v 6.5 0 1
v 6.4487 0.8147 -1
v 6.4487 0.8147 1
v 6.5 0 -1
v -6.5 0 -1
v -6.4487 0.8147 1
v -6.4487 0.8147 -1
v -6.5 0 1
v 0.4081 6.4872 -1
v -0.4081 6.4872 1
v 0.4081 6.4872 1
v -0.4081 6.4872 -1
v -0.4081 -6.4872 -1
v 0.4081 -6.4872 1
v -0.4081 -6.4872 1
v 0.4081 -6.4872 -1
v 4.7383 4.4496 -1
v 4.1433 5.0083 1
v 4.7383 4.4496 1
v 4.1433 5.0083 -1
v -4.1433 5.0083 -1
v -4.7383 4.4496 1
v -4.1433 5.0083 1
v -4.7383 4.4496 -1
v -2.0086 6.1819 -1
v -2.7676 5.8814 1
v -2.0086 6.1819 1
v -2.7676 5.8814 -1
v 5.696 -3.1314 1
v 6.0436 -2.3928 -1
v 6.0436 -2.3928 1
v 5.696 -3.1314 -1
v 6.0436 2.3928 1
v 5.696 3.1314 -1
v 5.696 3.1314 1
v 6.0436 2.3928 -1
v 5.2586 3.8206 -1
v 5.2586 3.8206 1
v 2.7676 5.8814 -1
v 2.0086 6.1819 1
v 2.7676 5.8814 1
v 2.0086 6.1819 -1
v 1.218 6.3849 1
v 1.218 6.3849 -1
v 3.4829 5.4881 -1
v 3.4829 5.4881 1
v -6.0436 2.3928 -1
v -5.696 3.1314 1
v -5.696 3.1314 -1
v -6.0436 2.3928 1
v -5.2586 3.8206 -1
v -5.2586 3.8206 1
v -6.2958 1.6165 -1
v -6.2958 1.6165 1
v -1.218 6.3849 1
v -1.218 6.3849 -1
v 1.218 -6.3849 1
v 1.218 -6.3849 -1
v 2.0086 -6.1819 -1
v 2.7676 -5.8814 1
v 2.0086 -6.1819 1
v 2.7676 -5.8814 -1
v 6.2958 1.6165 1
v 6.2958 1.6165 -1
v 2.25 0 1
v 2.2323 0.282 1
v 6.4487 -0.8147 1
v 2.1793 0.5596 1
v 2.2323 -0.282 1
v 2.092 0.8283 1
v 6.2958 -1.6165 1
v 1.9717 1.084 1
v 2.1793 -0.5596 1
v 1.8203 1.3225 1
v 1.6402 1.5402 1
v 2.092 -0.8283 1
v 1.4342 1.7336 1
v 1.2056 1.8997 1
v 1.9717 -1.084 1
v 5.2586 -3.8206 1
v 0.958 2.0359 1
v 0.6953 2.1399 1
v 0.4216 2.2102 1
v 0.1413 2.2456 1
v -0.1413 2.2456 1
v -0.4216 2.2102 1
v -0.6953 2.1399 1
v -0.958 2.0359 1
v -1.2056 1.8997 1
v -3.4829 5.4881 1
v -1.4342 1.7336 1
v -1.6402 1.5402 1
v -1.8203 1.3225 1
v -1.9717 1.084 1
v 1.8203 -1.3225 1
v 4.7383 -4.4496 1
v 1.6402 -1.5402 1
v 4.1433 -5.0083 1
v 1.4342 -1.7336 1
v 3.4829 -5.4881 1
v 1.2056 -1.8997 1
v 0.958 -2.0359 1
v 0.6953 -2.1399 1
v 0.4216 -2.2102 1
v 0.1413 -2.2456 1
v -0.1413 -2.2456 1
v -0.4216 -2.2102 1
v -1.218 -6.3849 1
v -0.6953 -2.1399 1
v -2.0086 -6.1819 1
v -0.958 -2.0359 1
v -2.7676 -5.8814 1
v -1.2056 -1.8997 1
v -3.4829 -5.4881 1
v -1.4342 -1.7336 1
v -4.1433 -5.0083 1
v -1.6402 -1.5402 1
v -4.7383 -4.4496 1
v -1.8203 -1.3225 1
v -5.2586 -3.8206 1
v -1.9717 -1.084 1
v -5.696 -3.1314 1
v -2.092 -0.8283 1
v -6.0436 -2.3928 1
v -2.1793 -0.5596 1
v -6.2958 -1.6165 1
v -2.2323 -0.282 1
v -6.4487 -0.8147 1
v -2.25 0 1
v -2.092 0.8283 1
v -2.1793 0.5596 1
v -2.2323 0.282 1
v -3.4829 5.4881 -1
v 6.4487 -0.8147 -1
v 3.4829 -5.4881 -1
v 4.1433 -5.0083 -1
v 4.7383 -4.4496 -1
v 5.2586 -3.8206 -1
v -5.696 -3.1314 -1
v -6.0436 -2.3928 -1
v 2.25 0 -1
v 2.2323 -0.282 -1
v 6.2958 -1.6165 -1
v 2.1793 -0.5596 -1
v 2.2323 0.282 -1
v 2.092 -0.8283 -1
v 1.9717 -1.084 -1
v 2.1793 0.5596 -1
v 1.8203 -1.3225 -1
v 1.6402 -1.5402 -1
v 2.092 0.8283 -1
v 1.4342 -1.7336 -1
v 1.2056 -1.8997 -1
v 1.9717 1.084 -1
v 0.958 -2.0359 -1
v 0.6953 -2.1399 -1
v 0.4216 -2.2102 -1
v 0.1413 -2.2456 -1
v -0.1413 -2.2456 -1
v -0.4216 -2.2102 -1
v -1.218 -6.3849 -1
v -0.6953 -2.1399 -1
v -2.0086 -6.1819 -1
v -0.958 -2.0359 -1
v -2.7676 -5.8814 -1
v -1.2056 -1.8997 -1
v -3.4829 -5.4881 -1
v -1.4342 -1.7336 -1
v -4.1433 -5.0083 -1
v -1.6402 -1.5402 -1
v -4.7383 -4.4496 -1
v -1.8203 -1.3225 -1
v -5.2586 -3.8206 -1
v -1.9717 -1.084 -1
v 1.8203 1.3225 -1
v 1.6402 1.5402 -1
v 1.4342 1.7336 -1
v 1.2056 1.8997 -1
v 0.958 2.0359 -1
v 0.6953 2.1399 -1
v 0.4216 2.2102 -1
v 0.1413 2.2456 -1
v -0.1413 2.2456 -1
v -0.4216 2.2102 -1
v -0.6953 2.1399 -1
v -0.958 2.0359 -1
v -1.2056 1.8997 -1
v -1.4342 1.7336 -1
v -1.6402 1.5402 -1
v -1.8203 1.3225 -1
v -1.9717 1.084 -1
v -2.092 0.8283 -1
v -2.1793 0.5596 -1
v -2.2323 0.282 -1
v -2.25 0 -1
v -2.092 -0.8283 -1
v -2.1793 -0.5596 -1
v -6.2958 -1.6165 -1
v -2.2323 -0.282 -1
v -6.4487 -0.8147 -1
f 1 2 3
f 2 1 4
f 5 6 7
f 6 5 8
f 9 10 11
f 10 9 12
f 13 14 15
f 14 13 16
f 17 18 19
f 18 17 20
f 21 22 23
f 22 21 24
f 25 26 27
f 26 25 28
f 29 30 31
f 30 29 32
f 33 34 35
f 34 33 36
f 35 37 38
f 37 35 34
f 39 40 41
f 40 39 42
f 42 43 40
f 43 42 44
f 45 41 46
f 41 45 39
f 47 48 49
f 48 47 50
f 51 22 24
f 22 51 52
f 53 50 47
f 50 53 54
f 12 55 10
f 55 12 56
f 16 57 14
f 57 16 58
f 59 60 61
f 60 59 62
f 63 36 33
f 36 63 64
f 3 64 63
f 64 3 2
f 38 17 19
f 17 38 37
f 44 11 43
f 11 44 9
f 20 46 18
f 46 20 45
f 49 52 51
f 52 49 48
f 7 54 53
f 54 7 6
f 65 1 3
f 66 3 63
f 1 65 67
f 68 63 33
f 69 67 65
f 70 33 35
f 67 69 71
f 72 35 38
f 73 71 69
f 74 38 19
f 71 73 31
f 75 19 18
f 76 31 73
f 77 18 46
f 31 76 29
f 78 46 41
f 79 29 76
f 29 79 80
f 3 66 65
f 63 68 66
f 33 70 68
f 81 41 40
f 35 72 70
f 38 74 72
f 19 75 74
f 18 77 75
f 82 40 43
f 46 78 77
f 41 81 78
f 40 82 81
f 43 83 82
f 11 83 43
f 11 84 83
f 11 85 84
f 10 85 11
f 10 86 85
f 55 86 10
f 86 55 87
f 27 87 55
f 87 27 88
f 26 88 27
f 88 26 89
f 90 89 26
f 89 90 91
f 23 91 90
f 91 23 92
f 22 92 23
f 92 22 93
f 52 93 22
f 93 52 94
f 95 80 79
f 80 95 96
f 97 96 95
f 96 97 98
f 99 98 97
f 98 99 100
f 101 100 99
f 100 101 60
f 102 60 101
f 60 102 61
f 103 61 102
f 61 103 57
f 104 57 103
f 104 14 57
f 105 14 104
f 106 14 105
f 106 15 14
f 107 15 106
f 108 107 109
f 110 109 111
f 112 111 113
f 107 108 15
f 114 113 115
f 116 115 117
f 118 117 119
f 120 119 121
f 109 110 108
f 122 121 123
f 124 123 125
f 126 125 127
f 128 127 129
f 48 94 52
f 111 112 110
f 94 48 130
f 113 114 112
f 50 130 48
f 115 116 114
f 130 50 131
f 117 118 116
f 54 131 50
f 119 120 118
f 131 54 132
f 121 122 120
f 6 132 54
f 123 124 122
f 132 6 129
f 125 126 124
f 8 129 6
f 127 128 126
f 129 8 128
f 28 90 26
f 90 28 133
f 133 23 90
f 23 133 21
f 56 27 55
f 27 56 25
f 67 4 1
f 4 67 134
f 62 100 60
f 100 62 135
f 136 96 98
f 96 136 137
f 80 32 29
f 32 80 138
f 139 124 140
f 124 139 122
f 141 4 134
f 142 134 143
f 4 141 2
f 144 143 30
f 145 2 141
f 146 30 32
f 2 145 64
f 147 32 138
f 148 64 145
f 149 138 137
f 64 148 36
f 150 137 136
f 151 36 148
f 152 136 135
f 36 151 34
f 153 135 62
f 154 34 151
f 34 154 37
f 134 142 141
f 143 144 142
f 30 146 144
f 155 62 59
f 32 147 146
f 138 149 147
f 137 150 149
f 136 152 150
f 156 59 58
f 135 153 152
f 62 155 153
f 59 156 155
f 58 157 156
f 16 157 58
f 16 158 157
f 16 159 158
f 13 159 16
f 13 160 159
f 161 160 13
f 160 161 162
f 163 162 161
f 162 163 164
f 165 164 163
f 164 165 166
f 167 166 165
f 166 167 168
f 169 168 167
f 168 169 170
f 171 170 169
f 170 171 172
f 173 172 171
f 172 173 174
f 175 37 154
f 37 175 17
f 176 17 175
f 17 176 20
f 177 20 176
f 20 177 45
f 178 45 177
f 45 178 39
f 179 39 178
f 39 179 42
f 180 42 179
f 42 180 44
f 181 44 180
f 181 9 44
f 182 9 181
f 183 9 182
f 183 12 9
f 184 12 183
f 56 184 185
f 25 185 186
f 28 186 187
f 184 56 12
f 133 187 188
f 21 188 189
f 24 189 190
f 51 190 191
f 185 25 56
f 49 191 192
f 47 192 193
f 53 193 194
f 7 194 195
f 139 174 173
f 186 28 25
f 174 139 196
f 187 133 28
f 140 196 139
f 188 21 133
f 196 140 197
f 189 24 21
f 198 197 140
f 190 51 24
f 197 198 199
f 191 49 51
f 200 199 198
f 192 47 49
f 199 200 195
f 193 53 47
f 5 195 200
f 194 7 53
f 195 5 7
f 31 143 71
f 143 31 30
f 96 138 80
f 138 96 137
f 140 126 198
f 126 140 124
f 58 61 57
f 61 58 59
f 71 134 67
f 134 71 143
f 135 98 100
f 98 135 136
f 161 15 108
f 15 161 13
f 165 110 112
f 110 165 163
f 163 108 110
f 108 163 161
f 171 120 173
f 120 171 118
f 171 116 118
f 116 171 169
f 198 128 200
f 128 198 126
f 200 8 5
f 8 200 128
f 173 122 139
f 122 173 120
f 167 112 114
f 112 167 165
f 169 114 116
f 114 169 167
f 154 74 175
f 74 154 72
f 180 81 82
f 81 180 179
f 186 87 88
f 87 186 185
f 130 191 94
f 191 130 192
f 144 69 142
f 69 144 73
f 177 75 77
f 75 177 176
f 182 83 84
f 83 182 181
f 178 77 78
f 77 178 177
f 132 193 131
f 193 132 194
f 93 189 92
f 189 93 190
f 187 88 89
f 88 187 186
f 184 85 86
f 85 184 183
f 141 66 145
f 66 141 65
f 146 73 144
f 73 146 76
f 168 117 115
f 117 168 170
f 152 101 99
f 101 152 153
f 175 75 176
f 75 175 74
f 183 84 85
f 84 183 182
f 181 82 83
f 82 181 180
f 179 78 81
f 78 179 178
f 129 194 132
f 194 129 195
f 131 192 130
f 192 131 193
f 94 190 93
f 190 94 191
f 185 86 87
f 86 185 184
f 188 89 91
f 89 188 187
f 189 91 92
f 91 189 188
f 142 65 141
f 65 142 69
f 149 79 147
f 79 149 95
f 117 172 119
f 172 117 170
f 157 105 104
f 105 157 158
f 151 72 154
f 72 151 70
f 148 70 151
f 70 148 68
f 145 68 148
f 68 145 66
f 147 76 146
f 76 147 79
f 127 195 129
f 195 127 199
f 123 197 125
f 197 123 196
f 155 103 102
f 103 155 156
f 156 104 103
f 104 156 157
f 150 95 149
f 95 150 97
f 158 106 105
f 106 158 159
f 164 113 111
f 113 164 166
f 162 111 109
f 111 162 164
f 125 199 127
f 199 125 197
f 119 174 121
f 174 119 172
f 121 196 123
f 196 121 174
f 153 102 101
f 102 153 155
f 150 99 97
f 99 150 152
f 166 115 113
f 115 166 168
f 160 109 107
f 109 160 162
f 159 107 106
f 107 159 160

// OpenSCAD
$fn = 50;


difference() {
	union() {
		translate(v = [0, 0, -1.0000000000]) {
			cylinder(h = 2, r = 6.5000000000);
		}
	}
	union() {
		translate(v = [0, 0, -100.0000000000]) {
			cylinder(h = 200, r = 2.2500000000);
		}
	}
}
